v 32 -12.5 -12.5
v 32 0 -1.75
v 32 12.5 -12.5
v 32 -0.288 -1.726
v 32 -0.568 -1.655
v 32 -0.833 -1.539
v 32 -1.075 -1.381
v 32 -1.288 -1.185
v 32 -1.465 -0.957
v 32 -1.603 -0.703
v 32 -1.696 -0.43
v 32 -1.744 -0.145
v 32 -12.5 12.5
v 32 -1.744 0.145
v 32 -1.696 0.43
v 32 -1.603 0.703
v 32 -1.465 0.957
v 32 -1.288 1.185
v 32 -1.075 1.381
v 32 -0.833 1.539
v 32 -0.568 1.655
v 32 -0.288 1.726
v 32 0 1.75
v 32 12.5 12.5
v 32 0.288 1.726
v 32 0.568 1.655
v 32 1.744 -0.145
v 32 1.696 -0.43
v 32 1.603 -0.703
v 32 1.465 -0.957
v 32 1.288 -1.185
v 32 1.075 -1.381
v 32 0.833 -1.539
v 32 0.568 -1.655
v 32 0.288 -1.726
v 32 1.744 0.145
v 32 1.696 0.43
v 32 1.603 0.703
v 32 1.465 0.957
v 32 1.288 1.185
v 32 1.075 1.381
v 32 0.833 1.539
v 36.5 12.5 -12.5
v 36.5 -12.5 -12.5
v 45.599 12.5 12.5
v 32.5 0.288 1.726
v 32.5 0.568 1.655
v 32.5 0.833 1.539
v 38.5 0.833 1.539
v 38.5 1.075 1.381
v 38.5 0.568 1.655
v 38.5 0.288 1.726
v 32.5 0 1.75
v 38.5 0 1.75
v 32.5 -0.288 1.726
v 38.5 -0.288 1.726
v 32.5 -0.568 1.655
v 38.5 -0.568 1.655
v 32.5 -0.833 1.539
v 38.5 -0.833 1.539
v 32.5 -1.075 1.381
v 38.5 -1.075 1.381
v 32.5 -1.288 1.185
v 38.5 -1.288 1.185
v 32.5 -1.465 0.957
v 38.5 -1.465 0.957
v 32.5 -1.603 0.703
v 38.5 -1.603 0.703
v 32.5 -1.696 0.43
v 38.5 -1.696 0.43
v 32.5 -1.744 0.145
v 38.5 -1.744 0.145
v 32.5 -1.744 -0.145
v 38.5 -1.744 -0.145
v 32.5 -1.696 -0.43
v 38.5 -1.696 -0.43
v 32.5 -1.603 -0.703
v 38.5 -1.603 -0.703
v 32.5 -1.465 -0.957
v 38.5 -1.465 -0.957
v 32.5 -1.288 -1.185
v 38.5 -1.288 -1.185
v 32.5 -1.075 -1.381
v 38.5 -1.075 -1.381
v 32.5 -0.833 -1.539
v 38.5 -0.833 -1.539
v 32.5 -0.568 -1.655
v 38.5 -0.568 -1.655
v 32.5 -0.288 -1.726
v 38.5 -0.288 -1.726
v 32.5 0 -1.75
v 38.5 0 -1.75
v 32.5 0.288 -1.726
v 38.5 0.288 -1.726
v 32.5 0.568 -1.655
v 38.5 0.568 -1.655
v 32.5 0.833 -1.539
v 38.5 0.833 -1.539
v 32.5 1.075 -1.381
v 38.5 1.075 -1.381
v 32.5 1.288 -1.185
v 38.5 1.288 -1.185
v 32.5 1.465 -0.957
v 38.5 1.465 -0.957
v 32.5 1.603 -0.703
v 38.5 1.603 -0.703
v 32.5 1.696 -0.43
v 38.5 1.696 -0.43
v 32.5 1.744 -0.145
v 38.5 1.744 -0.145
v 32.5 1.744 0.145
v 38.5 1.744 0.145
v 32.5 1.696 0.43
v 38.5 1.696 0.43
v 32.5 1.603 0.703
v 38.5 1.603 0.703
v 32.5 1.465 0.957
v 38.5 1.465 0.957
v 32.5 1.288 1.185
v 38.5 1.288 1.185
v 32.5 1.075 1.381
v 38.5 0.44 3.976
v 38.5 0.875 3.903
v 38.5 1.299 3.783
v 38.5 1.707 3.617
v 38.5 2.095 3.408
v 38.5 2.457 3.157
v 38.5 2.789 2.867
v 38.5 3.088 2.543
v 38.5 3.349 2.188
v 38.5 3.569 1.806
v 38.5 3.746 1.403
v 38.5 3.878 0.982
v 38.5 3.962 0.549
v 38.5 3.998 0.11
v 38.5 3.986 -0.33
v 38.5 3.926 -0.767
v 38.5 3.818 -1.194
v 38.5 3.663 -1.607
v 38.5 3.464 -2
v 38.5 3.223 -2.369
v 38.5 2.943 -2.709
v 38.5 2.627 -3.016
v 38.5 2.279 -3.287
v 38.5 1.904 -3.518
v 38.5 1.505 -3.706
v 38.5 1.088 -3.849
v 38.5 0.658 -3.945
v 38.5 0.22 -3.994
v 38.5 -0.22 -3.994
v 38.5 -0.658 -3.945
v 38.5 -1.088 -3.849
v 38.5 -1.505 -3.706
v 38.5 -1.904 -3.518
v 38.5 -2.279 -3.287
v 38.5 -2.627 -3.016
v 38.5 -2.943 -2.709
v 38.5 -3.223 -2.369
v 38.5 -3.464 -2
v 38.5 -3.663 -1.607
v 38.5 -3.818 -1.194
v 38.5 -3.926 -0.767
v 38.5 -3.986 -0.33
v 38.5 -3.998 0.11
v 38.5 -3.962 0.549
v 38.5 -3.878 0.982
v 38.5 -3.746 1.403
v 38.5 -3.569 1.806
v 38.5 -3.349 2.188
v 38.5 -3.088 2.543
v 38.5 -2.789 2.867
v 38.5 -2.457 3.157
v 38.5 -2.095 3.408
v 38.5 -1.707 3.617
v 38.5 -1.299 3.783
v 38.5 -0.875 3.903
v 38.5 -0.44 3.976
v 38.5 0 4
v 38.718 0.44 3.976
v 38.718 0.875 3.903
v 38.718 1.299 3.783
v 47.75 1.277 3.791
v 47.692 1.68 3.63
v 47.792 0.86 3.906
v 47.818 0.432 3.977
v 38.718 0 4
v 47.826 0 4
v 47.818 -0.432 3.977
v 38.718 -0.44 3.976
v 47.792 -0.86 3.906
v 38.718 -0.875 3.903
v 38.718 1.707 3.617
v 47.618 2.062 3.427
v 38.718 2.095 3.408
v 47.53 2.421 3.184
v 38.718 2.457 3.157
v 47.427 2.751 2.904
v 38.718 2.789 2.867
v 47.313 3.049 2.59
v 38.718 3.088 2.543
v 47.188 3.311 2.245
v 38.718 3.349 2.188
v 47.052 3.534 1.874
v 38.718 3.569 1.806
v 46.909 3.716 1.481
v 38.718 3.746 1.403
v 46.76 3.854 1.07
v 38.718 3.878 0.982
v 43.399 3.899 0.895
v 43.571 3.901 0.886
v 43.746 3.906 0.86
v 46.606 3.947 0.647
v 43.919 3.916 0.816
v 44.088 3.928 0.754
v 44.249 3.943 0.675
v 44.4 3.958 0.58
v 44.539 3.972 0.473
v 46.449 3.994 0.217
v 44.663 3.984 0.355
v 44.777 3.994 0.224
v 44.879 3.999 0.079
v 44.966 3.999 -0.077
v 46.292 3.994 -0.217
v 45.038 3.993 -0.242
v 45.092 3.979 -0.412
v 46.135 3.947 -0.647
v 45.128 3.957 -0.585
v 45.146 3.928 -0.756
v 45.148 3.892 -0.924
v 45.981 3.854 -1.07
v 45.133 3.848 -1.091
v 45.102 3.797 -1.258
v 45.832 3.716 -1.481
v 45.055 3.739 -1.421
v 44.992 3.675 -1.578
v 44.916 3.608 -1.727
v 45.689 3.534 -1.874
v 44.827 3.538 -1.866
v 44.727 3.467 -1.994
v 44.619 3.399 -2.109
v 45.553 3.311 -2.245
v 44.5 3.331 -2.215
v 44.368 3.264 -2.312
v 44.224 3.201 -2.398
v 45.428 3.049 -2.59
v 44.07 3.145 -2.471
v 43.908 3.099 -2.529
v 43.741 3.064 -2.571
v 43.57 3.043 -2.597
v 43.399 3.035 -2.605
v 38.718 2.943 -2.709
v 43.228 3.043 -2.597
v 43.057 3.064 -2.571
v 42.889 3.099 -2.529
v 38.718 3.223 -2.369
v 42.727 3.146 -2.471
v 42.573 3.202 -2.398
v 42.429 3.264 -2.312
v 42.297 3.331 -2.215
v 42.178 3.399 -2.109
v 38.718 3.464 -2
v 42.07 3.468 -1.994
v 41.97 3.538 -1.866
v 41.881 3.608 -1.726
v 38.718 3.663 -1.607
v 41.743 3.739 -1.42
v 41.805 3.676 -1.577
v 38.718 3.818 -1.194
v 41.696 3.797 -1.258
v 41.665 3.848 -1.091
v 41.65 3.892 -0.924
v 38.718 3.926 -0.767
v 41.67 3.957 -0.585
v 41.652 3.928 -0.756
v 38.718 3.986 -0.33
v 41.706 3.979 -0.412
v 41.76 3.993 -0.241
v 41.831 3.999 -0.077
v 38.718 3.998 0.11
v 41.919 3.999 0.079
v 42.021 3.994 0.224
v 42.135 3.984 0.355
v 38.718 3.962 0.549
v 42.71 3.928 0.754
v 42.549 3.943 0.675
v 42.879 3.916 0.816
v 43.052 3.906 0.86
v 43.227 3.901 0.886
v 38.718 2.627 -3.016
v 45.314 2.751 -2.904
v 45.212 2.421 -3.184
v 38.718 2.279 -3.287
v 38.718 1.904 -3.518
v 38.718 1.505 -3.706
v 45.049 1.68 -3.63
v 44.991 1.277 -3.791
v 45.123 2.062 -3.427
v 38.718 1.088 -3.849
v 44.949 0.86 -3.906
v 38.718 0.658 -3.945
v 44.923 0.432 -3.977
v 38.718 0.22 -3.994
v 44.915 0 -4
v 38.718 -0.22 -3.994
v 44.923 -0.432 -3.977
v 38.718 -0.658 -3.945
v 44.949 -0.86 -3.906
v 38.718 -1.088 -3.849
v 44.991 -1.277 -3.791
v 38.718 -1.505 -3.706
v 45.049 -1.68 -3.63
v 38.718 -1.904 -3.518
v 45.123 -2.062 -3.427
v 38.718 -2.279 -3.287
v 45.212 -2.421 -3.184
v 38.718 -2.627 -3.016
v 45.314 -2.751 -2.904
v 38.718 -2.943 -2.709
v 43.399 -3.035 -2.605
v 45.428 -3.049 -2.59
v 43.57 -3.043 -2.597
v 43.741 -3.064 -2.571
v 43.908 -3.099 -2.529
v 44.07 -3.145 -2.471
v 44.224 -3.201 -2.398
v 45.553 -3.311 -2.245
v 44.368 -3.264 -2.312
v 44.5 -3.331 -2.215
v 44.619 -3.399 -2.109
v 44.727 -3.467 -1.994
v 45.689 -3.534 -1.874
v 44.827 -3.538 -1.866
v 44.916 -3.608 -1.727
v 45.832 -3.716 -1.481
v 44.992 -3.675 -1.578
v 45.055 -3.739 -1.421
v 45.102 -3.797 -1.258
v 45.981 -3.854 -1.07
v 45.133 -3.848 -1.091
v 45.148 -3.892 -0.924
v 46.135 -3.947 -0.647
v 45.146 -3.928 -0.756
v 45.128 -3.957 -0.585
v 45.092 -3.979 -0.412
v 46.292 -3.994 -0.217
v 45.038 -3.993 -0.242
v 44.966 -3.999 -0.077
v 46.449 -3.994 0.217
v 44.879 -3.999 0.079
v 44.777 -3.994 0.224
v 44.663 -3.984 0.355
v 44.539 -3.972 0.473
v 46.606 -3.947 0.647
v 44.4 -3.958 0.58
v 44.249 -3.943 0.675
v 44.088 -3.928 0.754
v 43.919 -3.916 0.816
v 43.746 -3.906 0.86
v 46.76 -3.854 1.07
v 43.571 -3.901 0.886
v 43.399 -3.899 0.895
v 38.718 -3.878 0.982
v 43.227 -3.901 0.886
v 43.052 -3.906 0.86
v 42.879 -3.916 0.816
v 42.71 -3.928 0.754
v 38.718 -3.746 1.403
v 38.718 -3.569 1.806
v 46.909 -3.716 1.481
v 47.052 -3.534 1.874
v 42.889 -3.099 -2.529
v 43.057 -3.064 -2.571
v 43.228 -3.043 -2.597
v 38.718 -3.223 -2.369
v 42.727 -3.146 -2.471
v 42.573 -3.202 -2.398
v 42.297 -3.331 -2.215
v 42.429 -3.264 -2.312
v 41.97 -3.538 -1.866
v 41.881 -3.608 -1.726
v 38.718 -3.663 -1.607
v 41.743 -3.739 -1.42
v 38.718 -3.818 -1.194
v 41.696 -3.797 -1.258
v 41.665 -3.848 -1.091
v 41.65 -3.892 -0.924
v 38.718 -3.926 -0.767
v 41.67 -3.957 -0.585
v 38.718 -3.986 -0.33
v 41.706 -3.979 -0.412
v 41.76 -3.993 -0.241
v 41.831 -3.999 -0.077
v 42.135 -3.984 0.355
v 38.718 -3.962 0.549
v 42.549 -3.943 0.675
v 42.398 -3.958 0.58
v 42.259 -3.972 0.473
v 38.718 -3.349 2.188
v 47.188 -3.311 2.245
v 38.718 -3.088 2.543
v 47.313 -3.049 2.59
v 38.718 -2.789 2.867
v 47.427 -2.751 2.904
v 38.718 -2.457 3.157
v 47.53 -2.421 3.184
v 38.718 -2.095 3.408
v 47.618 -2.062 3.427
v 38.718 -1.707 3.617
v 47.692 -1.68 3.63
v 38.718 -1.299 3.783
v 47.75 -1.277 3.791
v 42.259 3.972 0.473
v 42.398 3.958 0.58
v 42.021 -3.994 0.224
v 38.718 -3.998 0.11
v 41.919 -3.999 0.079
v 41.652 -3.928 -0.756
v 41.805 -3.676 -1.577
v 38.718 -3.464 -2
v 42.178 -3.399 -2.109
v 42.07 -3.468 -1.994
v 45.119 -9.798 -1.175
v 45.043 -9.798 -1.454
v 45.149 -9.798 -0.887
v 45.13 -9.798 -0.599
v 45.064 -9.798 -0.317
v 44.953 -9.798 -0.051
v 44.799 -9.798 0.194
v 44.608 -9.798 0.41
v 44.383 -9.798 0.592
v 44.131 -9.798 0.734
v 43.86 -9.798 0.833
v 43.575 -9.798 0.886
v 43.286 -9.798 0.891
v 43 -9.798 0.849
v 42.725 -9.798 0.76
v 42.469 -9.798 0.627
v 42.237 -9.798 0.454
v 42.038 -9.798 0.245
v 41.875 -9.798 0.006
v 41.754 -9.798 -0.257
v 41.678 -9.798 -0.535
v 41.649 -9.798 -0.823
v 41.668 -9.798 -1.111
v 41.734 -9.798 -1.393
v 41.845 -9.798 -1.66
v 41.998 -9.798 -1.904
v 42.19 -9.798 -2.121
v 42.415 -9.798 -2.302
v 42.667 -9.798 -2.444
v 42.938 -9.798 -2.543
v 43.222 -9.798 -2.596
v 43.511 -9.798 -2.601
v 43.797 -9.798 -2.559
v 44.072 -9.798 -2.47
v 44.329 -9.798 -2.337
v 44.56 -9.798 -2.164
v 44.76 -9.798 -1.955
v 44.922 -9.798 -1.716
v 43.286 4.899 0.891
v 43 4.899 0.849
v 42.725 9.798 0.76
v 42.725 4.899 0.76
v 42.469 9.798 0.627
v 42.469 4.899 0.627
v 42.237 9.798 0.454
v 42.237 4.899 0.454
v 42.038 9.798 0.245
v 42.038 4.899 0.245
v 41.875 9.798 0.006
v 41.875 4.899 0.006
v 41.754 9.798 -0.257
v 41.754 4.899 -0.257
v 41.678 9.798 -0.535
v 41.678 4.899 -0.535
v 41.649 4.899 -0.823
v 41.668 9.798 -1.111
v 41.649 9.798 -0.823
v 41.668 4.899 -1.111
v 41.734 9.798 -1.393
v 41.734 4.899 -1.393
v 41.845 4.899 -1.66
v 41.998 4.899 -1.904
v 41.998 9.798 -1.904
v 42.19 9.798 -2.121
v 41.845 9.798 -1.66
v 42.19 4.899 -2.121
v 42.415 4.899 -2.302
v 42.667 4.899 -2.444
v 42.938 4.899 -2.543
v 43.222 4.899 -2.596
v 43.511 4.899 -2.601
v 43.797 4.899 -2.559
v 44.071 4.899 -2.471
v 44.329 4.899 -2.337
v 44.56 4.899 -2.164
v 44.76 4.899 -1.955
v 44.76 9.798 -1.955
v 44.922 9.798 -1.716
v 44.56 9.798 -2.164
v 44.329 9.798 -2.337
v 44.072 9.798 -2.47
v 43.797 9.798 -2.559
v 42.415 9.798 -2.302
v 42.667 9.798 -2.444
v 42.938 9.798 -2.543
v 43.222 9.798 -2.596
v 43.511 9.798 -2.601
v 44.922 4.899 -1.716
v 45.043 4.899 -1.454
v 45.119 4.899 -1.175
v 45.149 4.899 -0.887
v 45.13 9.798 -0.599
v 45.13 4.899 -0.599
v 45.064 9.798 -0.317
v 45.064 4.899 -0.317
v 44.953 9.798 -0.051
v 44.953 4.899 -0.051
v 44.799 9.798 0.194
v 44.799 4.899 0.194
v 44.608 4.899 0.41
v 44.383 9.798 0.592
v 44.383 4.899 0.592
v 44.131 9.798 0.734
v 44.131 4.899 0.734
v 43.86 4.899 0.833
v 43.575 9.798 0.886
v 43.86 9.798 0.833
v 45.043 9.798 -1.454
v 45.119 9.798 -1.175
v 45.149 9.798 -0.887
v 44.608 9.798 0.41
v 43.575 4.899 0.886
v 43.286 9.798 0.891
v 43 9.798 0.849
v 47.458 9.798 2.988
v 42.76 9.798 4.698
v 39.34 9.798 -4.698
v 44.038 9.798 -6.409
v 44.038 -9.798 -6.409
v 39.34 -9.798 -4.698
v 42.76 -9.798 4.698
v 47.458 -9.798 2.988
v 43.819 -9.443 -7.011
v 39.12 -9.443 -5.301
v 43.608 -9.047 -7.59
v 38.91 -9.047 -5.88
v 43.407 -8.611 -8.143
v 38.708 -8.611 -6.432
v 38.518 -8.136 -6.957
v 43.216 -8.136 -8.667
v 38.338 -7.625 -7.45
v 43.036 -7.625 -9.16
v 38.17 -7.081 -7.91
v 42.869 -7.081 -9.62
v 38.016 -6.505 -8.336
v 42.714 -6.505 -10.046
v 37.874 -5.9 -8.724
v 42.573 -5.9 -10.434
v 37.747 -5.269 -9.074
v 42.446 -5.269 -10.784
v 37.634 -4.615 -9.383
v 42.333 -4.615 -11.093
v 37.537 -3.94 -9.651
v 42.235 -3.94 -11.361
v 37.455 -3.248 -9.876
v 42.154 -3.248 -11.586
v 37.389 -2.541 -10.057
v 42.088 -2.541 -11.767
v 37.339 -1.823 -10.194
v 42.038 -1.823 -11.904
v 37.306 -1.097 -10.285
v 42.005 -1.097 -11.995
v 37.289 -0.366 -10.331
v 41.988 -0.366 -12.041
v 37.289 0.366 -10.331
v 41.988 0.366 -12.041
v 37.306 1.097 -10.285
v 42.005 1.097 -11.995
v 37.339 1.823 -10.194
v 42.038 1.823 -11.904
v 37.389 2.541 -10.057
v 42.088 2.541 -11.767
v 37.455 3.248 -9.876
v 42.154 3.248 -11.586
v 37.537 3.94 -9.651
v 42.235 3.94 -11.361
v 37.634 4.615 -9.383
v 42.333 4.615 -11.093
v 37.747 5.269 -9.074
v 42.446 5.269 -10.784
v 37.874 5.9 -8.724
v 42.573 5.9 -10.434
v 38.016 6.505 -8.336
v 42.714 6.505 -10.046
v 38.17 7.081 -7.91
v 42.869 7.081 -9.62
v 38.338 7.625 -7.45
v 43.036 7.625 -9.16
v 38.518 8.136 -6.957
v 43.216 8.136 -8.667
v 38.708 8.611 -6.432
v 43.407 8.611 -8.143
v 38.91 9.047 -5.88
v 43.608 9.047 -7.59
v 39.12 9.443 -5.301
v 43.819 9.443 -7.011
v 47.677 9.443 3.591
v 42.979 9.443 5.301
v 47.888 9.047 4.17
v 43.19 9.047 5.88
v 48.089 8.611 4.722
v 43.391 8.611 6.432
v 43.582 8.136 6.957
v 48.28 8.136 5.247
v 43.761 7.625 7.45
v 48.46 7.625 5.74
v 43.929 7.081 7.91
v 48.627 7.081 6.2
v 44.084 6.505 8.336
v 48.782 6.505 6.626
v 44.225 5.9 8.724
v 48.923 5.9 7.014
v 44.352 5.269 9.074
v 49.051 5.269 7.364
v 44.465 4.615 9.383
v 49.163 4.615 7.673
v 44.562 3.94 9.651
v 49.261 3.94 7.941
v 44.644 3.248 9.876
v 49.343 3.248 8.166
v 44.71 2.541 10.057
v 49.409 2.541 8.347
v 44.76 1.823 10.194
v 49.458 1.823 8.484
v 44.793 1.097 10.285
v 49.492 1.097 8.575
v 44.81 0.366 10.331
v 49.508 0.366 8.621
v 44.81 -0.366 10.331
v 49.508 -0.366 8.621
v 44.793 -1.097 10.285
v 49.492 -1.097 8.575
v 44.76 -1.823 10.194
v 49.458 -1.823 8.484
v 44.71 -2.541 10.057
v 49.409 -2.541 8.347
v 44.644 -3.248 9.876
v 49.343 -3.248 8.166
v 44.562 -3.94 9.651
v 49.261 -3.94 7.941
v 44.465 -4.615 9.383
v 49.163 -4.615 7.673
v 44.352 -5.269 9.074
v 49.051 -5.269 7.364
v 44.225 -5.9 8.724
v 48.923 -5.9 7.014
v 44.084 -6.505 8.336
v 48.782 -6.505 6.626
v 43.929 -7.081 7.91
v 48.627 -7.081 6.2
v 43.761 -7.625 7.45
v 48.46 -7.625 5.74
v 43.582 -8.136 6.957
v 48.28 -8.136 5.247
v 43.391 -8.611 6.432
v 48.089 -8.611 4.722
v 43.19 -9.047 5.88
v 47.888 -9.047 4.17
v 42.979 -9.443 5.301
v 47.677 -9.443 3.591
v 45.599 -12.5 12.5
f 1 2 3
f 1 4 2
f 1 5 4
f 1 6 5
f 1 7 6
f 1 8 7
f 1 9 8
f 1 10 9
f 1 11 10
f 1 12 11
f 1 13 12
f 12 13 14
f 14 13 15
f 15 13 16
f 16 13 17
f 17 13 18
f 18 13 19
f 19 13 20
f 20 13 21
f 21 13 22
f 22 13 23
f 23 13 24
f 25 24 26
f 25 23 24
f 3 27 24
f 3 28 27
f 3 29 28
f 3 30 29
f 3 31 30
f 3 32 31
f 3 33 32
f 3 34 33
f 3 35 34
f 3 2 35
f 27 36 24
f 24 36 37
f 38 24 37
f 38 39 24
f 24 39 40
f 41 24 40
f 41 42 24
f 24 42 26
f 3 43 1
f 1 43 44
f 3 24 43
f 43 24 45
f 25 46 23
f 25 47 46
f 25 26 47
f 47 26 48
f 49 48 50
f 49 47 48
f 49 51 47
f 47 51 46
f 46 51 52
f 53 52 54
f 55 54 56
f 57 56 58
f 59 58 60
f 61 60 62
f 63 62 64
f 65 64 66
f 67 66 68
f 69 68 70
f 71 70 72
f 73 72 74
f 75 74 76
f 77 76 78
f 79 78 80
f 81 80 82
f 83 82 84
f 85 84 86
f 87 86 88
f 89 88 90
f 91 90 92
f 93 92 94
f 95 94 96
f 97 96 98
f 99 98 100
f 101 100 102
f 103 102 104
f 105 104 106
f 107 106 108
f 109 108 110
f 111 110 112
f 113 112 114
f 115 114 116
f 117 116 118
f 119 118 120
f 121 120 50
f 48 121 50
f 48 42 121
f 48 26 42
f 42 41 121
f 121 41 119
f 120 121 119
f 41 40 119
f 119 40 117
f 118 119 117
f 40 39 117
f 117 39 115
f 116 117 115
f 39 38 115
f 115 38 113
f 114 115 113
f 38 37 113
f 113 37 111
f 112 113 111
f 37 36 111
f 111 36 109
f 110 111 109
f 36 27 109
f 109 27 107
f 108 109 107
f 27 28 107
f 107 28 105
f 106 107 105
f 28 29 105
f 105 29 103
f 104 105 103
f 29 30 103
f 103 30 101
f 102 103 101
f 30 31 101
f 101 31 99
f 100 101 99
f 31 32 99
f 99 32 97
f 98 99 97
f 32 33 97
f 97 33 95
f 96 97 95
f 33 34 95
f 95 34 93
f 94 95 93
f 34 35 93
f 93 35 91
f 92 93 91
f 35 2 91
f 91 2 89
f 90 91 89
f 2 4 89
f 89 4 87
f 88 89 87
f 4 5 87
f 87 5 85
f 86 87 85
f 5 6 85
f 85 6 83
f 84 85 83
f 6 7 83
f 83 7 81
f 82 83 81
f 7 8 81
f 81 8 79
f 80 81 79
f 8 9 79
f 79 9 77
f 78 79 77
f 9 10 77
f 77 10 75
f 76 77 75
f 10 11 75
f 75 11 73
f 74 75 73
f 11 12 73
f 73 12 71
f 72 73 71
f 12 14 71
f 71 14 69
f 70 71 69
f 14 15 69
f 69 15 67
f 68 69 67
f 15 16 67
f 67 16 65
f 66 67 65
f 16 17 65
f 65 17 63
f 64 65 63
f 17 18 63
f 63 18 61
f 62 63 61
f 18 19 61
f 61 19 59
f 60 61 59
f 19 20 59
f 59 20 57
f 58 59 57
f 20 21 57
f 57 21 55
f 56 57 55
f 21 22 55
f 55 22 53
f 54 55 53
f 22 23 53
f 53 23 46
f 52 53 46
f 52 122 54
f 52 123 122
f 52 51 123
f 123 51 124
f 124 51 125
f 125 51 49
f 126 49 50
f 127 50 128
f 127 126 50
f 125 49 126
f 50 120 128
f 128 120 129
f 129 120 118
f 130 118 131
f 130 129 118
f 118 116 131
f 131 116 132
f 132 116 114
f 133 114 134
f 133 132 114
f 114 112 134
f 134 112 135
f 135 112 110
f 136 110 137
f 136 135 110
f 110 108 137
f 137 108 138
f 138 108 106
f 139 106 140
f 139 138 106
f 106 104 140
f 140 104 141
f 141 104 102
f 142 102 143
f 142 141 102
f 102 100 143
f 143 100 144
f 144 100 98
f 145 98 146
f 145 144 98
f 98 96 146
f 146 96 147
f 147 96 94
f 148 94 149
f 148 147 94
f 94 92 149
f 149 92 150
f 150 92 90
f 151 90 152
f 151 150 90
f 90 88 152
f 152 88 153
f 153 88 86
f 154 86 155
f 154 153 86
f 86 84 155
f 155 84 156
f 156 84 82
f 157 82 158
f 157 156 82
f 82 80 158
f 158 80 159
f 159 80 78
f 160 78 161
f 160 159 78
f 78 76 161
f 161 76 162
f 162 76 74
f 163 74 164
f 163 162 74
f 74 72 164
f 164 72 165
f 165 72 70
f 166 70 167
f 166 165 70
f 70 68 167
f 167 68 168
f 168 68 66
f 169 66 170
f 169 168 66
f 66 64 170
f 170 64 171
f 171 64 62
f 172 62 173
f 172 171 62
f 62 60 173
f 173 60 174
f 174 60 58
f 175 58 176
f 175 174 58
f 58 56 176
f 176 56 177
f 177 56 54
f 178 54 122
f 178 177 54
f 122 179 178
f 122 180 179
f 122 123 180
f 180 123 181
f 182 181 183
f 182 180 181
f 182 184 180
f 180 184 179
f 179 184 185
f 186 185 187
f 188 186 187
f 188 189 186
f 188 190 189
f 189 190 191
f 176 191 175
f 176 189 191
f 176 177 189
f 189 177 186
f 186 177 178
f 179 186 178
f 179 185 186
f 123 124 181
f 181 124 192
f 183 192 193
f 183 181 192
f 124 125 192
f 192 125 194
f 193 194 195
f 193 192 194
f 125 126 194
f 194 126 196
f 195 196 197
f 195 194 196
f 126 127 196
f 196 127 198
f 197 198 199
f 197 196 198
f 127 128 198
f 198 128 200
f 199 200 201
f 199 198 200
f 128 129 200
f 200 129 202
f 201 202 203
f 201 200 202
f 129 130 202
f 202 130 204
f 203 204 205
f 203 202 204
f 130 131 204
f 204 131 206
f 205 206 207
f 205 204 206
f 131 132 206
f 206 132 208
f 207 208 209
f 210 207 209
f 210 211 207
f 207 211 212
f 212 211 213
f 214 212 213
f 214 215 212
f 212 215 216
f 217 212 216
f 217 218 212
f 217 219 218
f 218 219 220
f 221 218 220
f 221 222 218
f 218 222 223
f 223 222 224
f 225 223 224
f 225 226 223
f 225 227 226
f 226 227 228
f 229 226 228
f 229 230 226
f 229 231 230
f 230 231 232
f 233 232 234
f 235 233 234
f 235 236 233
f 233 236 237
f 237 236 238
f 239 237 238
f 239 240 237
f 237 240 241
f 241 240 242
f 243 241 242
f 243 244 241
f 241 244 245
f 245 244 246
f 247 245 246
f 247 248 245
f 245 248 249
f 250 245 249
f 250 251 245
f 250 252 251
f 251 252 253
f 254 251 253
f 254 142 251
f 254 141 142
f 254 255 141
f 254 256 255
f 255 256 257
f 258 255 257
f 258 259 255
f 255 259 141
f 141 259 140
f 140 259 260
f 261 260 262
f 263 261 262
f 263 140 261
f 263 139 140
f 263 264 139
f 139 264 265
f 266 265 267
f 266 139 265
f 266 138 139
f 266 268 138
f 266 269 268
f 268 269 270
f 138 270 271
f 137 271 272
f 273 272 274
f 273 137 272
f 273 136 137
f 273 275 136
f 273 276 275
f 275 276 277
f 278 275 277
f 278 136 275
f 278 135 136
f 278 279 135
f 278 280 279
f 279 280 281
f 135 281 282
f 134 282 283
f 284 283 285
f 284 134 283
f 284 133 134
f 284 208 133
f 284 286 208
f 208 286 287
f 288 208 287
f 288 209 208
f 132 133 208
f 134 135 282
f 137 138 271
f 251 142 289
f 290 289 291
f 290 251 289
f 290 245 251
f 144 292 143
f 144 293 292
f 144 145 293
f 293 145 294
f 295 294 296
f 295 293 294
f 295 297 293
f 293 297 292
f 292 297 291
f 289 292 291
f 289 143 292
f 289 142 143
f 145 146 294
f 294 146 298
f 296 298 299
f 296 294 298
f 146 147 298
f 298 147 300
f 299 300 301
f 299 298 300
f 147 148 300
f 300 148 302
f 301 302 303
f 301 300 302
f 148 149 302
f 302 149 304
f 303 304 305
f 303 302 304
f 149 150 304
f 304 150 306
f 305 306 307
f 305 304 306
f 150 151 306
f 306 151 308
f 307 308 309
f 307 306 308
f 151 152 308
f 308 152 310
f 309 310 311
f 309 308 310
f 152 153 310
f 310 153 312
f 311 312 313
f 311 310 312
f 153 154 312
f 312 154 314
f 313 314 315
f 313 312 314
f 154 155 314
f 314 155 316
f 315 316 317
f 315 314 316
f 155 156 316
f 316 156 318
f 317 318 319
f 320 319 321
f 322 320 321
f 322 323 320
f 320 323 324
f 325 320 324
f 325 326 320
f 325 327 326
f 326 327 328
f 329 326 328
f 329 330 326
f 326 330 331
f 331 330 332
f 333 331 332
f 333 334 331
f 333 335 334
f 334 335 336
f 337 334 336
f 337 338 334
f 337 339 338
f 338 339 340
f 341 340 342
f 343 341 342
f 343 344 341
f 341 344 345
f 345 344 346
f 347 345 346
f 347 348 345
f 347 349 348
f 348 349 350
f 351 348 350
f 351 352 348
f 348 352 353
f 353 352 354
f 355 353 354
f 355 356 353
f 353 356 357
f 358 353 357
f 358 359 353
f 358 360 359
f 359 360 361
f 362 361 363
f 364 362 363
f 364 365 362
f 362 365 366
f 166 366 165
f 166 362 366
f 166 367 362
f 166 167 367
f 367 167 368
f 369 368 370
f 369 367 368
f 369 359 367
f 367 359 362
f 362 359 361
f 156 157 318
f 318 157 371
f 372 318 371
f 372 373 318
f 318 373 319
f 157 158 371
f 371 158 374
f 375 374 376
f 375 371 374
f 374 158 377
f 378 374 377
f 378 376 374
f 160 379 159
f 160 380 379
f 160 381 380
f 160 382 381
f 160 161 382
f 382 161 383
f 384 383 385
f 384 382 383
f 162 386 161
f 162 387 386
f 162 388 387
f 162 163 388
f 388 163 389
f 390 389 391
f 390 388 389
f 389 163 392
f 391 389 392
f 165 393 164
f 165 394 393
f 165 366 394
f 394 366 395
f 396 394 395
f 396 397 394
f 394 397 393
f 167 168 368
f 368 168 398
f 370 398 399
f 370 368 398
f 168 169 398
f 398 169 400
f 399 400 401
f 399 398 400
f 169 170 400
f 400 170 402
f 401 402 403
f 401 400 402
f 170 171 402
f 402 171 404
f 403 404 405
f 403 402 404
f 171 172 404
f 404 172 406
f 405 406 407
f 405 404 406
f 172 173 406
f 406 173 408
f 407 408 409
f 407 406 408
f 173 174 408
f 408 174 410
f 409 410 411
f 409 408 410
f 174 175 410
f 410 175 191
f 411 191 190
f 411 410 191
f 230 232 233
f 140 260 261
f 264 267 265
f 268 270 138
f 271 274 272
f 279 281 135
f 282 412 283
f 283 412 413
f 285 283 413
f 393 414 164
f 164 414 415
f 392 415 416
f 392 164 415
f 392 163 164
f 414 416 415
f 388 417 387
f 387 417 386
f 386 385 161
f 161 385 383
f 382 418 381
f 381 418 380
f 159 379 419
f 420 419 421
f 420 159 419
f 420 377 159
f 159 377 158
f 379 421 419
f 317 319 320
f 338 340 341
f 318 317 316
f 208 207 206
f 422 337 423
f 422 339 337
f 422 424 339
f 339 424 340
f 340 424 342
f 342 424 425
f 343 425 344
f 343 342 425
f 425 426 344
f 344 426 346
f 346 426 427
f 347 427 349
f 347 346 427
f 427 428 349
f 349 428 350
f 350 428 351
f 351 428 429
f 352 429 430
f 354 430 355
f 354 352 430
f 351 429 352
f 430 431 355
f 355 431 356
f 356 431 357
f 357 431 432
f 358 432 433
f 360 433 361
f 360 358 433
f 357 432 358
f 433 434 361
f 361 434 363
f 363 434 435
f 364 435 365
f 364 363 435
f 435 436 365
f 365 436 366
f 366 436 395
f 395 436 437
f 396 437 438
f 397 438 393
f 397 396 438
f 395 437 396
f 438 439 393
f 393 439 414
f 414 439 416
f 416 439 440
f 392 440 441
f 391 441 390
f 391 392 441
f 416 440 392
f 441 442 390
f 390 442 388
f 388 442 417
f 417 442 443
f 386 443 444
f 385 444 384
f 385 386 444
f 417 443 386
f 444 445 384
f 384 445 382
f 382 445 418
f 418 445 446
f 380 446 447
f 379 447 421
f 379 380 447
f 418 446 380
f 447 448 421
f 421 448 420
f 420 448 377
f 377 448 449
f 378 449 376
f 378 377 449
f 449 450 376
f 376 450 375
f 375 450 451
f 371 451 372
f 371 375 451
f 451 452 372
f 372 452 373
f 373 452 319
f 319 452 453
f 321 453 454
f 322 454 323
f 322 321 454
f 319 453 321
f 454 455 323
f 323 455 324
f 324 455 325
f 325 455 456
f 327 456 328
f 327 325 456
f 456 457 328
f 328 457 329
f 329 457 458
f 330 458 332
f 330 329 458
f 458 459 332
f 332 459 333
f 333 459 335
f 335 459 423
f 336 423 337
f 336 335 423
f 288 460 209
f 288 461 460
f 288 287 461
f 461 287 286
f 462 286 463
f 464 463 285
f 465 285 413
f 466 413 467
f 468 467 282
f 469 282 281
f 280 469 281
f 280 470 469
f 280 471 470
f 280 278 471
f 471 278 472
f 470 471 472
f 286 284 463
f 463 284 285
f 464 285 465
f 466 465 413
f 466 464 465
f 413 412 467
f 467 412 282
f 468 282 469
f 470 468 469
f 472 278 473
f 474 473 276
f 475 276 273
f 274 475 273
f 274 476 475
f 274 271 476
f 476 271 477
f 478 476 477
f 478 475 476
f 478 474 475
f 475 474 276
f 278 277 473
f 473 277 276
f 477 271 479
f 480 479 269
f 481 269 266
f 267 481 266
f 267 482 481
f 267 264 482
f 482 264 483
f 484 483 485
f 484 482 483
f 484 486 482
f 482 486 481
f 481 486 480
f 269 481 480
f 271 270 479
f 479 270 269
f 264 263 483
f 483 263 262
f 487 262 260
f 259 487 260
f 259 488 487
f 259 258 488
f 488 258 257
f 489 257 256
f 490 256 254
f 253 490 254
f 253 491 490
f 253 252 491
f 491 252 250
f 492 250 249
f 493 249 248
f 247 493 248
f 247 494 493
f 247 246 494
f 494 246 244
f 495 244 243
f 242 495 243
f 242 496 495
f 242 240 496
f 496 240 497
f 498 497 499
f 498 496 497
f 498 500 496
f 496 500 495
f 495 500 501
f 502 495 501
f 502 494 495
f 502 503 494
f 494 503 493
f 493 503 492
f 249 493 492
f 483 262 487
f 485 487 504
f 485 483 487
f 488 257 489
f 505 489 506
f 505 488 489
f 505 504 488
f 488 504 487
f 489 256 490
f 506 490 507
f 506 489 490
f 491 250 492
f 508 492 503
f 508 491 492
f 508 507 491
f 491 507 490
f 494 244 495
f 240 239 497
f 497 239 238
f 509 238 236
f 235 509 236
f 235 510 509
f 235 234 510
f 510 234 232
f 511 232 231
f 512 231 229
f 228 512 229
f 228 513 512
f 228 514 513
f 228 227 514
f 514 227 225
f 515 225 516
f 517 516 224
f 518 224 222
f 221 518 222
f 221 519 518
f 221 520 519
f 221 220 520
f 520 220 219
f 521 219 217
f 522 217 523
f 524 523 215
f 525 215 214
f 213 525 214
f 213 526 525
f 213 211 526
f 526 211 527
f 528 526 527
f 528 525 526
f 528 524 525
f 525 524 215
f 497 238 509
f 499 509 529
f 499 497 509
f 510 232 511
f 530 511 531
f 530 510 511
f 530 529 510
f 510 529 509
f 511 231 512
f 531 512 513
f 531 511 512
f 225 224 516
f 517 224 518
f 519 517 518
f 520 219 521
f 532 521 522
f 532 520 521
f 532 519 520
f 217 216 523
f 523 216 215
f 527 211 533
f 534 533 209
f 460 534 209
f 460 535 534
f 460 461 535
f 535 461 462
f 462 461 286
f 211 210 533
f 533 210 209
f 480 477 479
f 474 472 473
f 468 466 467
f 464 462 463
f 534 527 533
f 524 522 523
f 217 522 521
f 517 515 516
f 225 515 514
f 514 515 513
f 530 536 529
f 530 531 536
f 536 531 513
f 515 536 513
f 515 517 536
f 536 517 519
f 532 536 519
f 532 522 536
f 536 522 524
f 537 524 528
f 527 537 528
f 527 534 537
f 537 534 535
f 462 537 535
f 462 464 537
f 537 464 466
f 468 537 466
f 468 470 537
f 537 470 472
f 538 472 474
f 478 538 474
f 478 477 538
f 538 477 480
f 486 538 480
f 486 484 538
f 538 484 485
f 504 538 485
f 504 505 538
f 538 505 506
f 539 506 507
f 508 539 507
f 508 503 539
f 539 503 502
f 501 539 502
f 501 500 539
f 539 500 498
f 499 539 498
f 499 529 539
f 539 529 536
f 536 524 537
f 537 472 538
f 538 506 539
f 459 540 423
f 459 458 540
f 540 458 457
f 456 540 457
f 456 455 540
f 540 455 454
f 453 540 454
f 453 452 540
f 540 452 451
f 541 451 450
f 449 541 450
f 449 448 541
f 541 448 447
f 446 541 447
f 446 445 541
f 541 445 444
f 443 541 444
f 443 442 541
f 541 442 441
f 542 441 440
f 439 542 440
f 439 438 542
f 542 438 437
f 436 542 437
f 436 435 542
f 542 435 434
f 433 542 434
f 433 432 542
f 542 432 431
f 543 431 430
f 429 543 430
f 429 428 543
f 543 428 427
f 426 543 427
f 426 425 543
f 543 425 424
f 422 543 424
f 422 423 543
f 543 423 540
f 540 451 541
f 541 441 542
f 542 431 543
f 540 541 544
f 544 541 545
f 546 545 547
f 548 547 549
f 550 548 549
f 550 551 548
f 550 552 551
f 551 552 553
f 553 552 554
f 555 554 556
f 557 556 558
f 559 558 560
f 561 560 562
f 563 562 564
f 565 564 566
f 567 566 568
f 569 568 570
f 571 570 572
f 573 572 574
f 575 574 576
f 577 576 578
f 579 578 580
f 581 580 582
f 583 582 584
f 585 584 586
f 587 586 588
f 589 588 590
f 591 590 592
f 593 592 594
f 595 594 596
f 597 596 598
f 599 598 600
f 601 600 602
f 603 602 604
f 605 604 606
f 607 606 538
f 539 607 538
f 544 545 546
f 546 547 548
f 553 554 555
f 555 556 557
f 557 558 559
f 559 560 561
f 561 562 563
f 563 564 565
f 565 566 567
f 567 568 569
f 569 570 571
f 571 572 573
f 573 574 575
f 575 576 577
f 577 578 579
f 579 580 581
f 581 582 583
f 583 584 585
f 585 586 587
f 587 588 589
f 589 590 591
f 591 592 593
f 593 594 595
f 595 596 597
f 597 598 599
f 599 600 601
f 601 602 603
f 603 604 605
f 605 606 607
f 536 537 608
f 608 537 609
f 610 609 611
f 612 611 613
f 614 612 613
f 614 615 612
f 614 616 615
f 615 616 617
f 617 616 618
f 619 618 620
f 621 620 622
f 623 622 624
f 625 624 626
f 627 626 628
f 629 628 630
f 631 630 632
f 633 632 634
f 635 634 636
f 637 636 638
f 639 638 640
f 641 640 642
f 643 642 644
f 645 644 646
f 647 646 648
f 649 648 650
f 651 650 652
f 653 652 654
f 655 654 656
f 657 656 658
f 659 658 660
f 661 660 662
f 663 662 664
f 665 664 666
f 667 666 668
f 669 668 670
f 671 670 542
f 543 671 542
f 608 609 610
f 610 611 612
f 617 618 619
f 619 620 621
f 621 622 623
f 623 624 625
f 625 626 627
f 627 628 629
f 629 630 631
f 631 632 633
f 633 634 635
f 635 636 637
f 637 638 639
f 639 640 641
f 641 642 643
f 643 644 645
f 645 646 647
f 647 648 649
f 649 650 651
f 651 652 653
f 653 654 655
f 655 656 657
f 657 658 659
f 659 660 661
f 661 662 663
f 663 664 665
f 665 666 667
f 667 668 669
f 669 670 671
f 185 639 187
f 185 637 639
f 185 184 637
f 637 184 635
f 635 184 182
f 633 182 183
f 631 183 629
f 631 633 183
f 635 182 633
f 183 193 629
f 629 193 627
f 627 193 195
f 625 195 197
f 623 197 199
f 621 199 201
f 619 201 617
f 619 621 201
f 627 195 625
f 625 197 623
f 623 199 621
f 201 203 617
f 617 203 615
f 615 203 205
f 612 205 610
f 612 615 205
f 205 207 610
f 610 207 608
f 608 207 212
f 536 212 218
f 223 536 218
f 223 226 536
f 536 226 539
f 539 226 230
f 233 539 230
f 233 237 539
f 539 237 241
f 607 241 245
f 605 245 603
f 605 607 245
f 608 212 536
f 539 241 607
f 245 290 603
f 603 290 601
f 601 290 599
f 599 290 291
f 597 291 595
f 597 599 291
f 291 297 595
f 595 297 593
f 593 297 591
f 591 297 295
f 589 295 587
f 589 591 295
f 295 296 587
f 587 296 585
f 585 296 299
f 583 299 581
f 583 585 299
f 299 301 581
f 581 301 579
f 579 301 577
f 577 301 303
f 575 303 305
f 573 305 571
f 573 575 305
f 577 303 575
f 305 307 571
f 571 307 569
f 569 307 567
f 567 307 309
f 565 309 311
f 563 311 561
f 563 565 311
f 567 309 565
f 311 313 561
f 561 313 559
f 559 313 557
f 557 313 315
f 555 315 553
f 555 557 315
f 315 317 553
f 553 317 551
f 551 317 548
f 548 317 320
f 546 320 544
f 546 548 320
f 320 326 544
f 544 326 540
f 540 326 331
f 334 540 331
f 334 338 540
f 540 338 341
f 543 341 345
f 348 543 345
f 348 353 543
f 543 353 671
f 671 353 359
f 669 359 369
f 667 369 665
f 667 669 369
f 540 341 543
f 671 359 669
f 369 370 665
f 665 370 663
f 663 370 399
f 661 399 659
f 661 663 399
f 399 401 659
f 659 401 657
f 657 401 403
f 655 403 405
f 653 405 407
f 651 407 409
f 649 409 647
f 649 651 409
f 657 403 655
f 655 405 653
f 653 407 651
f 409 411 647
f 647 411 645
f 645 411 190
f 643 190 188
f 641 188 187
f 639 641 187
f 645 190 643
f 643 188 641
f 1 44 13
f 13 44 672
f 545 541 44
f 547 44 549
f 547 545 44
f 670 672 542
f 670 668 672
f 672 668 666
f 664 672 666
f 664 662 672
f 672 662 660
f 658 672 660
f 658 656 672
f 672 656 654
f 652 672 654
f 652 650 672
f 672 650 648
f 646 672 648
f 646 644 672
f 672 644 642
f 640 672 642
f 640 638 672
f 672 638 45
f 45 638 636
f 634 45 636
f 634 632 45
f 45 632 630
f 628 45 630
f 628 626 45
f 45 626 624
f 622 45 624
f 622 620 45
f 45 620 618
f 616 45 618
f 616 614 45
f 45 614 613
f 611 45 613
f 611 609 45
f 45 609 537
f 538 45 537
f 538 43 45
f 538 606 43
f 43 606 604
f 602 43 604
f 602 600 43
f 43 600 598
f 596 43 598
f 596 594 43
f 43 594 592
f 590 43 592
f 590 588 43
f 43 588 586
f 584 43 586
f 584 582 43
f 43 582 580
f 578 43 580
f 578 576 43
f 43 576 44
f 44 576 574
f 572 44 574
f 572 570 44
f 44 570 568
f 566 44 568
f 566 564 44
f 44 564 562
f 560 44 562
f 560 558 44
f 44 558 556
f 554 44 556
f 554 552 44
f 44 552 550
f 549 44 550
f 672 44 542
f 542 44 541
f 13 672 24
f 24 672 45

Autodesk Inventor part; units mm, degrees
ref_plane "YZ Plane" through (0, 0, 0) normal (1, 0, 0) x (0, 1, 0)
ref_plane "XZ Plane" through (0, 0, 0) normal (0, 1, 0) x (-1, 0, 0)
ref_plane "XY Plane" through (0, 0, 0) normal (0, 0, 1) x (1, 0, 0)
sketch "Esquisse1" plane through (0, 0, 0) normal (0, 1, 0) x (-1, 0, 0)
  line L0 (20.5, 10.5) -> (-20.5, 10.5)
  line L1 (-20.5, 10.5) -> (-20.5, -10.5)
  line L2 (-20.5, -10.5) -> (20.5, -10.5)
  line L3 (20.5, -10.5) -> (20.5, 10.5)
  line L4 (28.5, 12.5) -> (-36.5, 12.5)
  line L5 (-36.5, 12.5) -> (-36.5, -12.5)
  line L6 (-36.5, -12.5) -> (28.5, -12.5)
  line L7 (28.5, -12.5) -> (28.5, 12.5)
  line L8 (-36.5, -12.5) -> (-45.5993, 12.5)
  line L9 (-45.5993, 12.5) -> (-36.5, 12.5)
  point P0 (0, 0)
  dimension "d0" = 20
  dimension "d1" = 41
  dimension "d2" = 21
  dimension "d3" = 10.5
  dimension "d4" = 20.5
  dimension "d5" = 8
  dimension "d6" = 2
  dimension "d7" = 2
  dimension "d8" = 16
extrude "Extrusion1" add sketch "Esquisse1" along normal mid plane 25
sketch "Esquisse2" plane through (36.5, -12.5, -12.5) normal (0.9397, 0, -0.342) x (-0.342, 0, -0.9397)
  line L0 (-26.6044, 25) -> (0, 0)
  line L1 (0, 0) -> (0, 25)
  line L2 (0, 25) -> (-26.6044, 0)
  arc A0 (-8.3022, 22.298) -> (-18.3022, 22.298) centre (-13.3022, 12.5) ccw
  line L3 (-18.3022, 22.298) -> (-8.3022, 22.298)
  line L4 (-8.3022, 22.298) -> (-8.3022, 2.702)
  line L5 (-8.3022, 2.702) -> (-18.3022, 2.702)
  line L6 (-18.3022, 2.702) -> (-18.3022, 22.298)
  arc A1 (-8.3022, 2.702) -> (-8.3022, 22.298) centre (-13.3022, 12.5) ccw
  arc A2 (-18.3022, 2.702) -> (-8.3022, 2.702) centre (-13.3022, 12.5) ccw
  arc A3 (-18.3022, 22.298) -> (-18.3022, 2.702) centre (-13.3022, 12.5) ccw
  point P0 (0.7376, 12.5)
  dimension "d11" = 22
  dimension "d13" = 10
extrude "Extrusion2" add sketch "Esquisse2" along normal blind 5 contours A3 L6 L0 | L0 L6 L2 A3 | L6 L3 L4 L2 L0 | L0 L2 L6 | L2 L6 A3 | L2 L4 L0 | L0 L4 L5 L6 L2 | A1 L2 L4 | L4 L2 A1 L0 | L0 A1 L4
sketch "Esquisse3" plane through (39.3395, -9.798, -4.6985) normal (0, -1, 0) x (0.9397, 0, -0.342)
  line L0 (5, 10) -> (0, 0)
  line L1 (0, 10) -> (5, 0)
  circle A0 centre (2.5, 5) radius 1.75
  point P0 (-38.574, -9.0398)
  dimension "d16" = 3.5
extrude "Extrusion3" cut sketch "Esquisse3" against normal through all
sketch "Esquisse4" plane through (20.5, -12.5, 10.5) normal (-1, 0, 0) x (0, 0, 1)
  line L0 (-21, 3) -> (0, 3)
  line L1 (0, 3) -> (0, 6)
  line L2 (0, 6) -> (-21, 6)
  line L3 (-21, 6) -> (-21, 3)
  line L4 (-21, 0) -> (-21, 25) projected
  line L5 (0, 0) -> (0, 25) projected
  line L6 (0, 0) -> (-21, 0) projected
  point P0 (-10.5, 12.5)
  dimension "d19" = 3
  dimension "d20" = 3
extrude "Extrusion4" cut sketch "Esquisse4" against normal blind 7 contours L3 L2 L1 L0
sketch "Esquisse5" plane through (-20.5, -12.5, -10.5) normal (1, 0, 0) x (0, 0, -1)
  line L0 (-21, 6) -> (0, 6)
  line L1 (0, 6) -> (0, 3)
  line L2 (0, 3) -> (-21, 3)
  line L3 (-21, 3) -> (-21, 6)
  line L4 (-21, 25) -> (-21, 0) projected
  line L5 (0, 0) -> (0, 25) projected
  line L6 (0, 0) -> (-21, 0) projected
  point P0 (-10.5, 12.5)
  dimension "d23" = 3
  dimension "d24" = 3
extrude "Extrusion5" cut sketch "Esquisse5" against normal blind 7 contours L0 L1 L2 L3
sketch "Esquisse6" plane through (20.5, 12.5, -10.5) normal (-1, 0, 0) x (0, 0, 1)
  line L0 (21, -25) -> (0, 0)
  line L1 (0, -25) -> (21, 0)
  circle A0 centre (10.5, -12.5) radius 4
  dimension "d27" = 8
extrude "Extrusion6" cut sketch "Esquisse6" against normal through all
sketch "Esquisse7" plane through (20.5, 12.5, -10.5) normal (-1, 0, 0) x (0, 0, 1)
  circle A0 centre (10.5, -12.5) radius 4
  circle A1 centre (10.5, -12.5) radius 1.75
  circle A2 centre (10.5, -12.5) radius 4 projected
  dimension "d30" = 0
  dimension "d31" = 3.5
extrude "Extrusion7" add sketch "Esquisse7" against normal blind 18
sketch "Esquisse8" plane through (20.5, 12.5, -10.5) normal (-1, 0, 0) x (0, 0, 1)
  circle A0 centre (10.5, -12.5) radius 3
  dimension "d34" = 6
extrude "Extrusion8" cut sketch "Esquisse8" against normal blind 3
sketch "Esquisse10" plane through (0, -12.5, 0) normal (0, -1, 0) x (1, 0, 0)
  line L0 (-20.5, -10.5) -> (-27.5, -10.5)
  line L1 (-27.5, -10.5) -> (-27.5, 10.5)
  line L2 (-27.5, 10.5) -> (-20.5, 10.5)
  line L3 (-20.5, 10.5) -> (-20.5, -10.5)
  line L4 (20.5, -10.5) -> (27.5, -10.5)
  line L5 (27.5, -10.5) -> (27.5, 10.5)
  line L6 (27.5, 10.5) -> (20.5, 10.5)
  line L7 (20.5, 10.5) -> (20.5, -10.5)
  line L8 (-27.5, -10.5) -> (-27.5, 10.5) projected
  line L9 (27.5, 10.5) -> (27.5, -10.5) projected
  line L10 (-27.5, -10.5) -> (-20.5, 0)
  line L11 (-20.5, 0) -> (-27.5, 10.5)
  line L12 (-27.5, 0) -> (-20.5, 10.5)
  line L13 (-20.5, -10.5) -> (-27.5, 0)
  line L14 (20.5, -10.5) -> (27.5, 0)
  line L15 (20.5, 0) -> (27.5, -10.5)
  line L16 (27.5, 10.5) -> (20.5, 0)
  line L17 (20.5, 10.5) -> (27.5, 0)
  circle A0 centre (-24, -5.25) radius 2
  circle A1 centre (24, -5.25) radius 2
  circle A2 centre (24, 5.25) radius 2
  circle A3 centre (-24, 5.25) radius 2
  point P0 (0, 0)
  dimension "d37" = 4
  dimension "d38" = 4
  dimension "d39" = 4
  dimension "d40" = 4
extrude "Extrusion9" cut sketch "Esquisse10" against normal through all contours A0 L10 L13 | L13 L10 A0 | A0 L13 L10 | L10 L13 A0 | A3 L12 L11 | L11 L12 A3 | A3 L11 L12 | L12 L11 A3 | A1 L15 L14 | L14 L15 A1 | L15 L14 A1 | A1 L14 L15 | A2 L17 L16 | L16 L17 A2 | L17 L16 A2 | A2 L16 L17
sketch "Esquisse11" plane through (36.5, 12.5, -12.5) normal (0, 0, -1) x (-1, 0, 0)
  line L0 (65, 0) -> (45, 0)
  line L1 (45, 0) -> (45, -13)
  line L2 (45, -13) -> (65, -13)
  line L3 (65, -13) -> (65, 0)
  line L4 (65, -25) -> (0, -25) projected
  line L5 (45, -13) -> (32, 0)
  line L6 (0, 0) -> (65, 0) projected
  line L7 (45, 0) -> (32, 0)
  point P0 (36.5, -12.5)
  dimension "d43" = 20
  dimension "d44" = 12
  dimension "d45" = 45
extrude "Extrusion10" cut sketch "Esquisse11" against normal through all
sketch "Esquisse12" plane through (-28.5, -12.5, 12.5) normal (0, 0, 1) x (1, 0, 0)
  line L0 (33, 25) -> (74.0993, 25) projected
  line L1 (74.0993, 0) -> (60.5, 0)
  line L2 (60.5, 0) -> (60.5, 25)
  line L3 (60.5, 25) -> (74.0993, 25)
  line L4 (74.0993, 25) -> (74.0993, 0)
  line L5 (56, 6) -> (56, 3) projected
  line L6 (65, 25) -> (65, 0) projected
  line L7 (60.5, 25) -> (0, 25)
  line L8 (0, 25) -> (0, 0)
  line L9 (0, 0) -> (60.5, 0)
  line L10 (60.5, 0) -> (60.5, 25)
  point P0 (28.5, 12.5)
  dimension "d48" = 9
  dimension "d49" = 4.5
extrude "Extrusion11" cut sketch "Esquisse12" against normal through all contours L0 L2 L9 L8 L7
equation "\"d3\" = 0.5 * d2"
equation "\"d4\" = 0.5 * d1"
equation "\"d38\" = d37"
equation "\"d39\" = d37"
equation "\"d40\" = d37"
equation "\"d49\" = 0.5 * d48"
properties part number "forearm"
